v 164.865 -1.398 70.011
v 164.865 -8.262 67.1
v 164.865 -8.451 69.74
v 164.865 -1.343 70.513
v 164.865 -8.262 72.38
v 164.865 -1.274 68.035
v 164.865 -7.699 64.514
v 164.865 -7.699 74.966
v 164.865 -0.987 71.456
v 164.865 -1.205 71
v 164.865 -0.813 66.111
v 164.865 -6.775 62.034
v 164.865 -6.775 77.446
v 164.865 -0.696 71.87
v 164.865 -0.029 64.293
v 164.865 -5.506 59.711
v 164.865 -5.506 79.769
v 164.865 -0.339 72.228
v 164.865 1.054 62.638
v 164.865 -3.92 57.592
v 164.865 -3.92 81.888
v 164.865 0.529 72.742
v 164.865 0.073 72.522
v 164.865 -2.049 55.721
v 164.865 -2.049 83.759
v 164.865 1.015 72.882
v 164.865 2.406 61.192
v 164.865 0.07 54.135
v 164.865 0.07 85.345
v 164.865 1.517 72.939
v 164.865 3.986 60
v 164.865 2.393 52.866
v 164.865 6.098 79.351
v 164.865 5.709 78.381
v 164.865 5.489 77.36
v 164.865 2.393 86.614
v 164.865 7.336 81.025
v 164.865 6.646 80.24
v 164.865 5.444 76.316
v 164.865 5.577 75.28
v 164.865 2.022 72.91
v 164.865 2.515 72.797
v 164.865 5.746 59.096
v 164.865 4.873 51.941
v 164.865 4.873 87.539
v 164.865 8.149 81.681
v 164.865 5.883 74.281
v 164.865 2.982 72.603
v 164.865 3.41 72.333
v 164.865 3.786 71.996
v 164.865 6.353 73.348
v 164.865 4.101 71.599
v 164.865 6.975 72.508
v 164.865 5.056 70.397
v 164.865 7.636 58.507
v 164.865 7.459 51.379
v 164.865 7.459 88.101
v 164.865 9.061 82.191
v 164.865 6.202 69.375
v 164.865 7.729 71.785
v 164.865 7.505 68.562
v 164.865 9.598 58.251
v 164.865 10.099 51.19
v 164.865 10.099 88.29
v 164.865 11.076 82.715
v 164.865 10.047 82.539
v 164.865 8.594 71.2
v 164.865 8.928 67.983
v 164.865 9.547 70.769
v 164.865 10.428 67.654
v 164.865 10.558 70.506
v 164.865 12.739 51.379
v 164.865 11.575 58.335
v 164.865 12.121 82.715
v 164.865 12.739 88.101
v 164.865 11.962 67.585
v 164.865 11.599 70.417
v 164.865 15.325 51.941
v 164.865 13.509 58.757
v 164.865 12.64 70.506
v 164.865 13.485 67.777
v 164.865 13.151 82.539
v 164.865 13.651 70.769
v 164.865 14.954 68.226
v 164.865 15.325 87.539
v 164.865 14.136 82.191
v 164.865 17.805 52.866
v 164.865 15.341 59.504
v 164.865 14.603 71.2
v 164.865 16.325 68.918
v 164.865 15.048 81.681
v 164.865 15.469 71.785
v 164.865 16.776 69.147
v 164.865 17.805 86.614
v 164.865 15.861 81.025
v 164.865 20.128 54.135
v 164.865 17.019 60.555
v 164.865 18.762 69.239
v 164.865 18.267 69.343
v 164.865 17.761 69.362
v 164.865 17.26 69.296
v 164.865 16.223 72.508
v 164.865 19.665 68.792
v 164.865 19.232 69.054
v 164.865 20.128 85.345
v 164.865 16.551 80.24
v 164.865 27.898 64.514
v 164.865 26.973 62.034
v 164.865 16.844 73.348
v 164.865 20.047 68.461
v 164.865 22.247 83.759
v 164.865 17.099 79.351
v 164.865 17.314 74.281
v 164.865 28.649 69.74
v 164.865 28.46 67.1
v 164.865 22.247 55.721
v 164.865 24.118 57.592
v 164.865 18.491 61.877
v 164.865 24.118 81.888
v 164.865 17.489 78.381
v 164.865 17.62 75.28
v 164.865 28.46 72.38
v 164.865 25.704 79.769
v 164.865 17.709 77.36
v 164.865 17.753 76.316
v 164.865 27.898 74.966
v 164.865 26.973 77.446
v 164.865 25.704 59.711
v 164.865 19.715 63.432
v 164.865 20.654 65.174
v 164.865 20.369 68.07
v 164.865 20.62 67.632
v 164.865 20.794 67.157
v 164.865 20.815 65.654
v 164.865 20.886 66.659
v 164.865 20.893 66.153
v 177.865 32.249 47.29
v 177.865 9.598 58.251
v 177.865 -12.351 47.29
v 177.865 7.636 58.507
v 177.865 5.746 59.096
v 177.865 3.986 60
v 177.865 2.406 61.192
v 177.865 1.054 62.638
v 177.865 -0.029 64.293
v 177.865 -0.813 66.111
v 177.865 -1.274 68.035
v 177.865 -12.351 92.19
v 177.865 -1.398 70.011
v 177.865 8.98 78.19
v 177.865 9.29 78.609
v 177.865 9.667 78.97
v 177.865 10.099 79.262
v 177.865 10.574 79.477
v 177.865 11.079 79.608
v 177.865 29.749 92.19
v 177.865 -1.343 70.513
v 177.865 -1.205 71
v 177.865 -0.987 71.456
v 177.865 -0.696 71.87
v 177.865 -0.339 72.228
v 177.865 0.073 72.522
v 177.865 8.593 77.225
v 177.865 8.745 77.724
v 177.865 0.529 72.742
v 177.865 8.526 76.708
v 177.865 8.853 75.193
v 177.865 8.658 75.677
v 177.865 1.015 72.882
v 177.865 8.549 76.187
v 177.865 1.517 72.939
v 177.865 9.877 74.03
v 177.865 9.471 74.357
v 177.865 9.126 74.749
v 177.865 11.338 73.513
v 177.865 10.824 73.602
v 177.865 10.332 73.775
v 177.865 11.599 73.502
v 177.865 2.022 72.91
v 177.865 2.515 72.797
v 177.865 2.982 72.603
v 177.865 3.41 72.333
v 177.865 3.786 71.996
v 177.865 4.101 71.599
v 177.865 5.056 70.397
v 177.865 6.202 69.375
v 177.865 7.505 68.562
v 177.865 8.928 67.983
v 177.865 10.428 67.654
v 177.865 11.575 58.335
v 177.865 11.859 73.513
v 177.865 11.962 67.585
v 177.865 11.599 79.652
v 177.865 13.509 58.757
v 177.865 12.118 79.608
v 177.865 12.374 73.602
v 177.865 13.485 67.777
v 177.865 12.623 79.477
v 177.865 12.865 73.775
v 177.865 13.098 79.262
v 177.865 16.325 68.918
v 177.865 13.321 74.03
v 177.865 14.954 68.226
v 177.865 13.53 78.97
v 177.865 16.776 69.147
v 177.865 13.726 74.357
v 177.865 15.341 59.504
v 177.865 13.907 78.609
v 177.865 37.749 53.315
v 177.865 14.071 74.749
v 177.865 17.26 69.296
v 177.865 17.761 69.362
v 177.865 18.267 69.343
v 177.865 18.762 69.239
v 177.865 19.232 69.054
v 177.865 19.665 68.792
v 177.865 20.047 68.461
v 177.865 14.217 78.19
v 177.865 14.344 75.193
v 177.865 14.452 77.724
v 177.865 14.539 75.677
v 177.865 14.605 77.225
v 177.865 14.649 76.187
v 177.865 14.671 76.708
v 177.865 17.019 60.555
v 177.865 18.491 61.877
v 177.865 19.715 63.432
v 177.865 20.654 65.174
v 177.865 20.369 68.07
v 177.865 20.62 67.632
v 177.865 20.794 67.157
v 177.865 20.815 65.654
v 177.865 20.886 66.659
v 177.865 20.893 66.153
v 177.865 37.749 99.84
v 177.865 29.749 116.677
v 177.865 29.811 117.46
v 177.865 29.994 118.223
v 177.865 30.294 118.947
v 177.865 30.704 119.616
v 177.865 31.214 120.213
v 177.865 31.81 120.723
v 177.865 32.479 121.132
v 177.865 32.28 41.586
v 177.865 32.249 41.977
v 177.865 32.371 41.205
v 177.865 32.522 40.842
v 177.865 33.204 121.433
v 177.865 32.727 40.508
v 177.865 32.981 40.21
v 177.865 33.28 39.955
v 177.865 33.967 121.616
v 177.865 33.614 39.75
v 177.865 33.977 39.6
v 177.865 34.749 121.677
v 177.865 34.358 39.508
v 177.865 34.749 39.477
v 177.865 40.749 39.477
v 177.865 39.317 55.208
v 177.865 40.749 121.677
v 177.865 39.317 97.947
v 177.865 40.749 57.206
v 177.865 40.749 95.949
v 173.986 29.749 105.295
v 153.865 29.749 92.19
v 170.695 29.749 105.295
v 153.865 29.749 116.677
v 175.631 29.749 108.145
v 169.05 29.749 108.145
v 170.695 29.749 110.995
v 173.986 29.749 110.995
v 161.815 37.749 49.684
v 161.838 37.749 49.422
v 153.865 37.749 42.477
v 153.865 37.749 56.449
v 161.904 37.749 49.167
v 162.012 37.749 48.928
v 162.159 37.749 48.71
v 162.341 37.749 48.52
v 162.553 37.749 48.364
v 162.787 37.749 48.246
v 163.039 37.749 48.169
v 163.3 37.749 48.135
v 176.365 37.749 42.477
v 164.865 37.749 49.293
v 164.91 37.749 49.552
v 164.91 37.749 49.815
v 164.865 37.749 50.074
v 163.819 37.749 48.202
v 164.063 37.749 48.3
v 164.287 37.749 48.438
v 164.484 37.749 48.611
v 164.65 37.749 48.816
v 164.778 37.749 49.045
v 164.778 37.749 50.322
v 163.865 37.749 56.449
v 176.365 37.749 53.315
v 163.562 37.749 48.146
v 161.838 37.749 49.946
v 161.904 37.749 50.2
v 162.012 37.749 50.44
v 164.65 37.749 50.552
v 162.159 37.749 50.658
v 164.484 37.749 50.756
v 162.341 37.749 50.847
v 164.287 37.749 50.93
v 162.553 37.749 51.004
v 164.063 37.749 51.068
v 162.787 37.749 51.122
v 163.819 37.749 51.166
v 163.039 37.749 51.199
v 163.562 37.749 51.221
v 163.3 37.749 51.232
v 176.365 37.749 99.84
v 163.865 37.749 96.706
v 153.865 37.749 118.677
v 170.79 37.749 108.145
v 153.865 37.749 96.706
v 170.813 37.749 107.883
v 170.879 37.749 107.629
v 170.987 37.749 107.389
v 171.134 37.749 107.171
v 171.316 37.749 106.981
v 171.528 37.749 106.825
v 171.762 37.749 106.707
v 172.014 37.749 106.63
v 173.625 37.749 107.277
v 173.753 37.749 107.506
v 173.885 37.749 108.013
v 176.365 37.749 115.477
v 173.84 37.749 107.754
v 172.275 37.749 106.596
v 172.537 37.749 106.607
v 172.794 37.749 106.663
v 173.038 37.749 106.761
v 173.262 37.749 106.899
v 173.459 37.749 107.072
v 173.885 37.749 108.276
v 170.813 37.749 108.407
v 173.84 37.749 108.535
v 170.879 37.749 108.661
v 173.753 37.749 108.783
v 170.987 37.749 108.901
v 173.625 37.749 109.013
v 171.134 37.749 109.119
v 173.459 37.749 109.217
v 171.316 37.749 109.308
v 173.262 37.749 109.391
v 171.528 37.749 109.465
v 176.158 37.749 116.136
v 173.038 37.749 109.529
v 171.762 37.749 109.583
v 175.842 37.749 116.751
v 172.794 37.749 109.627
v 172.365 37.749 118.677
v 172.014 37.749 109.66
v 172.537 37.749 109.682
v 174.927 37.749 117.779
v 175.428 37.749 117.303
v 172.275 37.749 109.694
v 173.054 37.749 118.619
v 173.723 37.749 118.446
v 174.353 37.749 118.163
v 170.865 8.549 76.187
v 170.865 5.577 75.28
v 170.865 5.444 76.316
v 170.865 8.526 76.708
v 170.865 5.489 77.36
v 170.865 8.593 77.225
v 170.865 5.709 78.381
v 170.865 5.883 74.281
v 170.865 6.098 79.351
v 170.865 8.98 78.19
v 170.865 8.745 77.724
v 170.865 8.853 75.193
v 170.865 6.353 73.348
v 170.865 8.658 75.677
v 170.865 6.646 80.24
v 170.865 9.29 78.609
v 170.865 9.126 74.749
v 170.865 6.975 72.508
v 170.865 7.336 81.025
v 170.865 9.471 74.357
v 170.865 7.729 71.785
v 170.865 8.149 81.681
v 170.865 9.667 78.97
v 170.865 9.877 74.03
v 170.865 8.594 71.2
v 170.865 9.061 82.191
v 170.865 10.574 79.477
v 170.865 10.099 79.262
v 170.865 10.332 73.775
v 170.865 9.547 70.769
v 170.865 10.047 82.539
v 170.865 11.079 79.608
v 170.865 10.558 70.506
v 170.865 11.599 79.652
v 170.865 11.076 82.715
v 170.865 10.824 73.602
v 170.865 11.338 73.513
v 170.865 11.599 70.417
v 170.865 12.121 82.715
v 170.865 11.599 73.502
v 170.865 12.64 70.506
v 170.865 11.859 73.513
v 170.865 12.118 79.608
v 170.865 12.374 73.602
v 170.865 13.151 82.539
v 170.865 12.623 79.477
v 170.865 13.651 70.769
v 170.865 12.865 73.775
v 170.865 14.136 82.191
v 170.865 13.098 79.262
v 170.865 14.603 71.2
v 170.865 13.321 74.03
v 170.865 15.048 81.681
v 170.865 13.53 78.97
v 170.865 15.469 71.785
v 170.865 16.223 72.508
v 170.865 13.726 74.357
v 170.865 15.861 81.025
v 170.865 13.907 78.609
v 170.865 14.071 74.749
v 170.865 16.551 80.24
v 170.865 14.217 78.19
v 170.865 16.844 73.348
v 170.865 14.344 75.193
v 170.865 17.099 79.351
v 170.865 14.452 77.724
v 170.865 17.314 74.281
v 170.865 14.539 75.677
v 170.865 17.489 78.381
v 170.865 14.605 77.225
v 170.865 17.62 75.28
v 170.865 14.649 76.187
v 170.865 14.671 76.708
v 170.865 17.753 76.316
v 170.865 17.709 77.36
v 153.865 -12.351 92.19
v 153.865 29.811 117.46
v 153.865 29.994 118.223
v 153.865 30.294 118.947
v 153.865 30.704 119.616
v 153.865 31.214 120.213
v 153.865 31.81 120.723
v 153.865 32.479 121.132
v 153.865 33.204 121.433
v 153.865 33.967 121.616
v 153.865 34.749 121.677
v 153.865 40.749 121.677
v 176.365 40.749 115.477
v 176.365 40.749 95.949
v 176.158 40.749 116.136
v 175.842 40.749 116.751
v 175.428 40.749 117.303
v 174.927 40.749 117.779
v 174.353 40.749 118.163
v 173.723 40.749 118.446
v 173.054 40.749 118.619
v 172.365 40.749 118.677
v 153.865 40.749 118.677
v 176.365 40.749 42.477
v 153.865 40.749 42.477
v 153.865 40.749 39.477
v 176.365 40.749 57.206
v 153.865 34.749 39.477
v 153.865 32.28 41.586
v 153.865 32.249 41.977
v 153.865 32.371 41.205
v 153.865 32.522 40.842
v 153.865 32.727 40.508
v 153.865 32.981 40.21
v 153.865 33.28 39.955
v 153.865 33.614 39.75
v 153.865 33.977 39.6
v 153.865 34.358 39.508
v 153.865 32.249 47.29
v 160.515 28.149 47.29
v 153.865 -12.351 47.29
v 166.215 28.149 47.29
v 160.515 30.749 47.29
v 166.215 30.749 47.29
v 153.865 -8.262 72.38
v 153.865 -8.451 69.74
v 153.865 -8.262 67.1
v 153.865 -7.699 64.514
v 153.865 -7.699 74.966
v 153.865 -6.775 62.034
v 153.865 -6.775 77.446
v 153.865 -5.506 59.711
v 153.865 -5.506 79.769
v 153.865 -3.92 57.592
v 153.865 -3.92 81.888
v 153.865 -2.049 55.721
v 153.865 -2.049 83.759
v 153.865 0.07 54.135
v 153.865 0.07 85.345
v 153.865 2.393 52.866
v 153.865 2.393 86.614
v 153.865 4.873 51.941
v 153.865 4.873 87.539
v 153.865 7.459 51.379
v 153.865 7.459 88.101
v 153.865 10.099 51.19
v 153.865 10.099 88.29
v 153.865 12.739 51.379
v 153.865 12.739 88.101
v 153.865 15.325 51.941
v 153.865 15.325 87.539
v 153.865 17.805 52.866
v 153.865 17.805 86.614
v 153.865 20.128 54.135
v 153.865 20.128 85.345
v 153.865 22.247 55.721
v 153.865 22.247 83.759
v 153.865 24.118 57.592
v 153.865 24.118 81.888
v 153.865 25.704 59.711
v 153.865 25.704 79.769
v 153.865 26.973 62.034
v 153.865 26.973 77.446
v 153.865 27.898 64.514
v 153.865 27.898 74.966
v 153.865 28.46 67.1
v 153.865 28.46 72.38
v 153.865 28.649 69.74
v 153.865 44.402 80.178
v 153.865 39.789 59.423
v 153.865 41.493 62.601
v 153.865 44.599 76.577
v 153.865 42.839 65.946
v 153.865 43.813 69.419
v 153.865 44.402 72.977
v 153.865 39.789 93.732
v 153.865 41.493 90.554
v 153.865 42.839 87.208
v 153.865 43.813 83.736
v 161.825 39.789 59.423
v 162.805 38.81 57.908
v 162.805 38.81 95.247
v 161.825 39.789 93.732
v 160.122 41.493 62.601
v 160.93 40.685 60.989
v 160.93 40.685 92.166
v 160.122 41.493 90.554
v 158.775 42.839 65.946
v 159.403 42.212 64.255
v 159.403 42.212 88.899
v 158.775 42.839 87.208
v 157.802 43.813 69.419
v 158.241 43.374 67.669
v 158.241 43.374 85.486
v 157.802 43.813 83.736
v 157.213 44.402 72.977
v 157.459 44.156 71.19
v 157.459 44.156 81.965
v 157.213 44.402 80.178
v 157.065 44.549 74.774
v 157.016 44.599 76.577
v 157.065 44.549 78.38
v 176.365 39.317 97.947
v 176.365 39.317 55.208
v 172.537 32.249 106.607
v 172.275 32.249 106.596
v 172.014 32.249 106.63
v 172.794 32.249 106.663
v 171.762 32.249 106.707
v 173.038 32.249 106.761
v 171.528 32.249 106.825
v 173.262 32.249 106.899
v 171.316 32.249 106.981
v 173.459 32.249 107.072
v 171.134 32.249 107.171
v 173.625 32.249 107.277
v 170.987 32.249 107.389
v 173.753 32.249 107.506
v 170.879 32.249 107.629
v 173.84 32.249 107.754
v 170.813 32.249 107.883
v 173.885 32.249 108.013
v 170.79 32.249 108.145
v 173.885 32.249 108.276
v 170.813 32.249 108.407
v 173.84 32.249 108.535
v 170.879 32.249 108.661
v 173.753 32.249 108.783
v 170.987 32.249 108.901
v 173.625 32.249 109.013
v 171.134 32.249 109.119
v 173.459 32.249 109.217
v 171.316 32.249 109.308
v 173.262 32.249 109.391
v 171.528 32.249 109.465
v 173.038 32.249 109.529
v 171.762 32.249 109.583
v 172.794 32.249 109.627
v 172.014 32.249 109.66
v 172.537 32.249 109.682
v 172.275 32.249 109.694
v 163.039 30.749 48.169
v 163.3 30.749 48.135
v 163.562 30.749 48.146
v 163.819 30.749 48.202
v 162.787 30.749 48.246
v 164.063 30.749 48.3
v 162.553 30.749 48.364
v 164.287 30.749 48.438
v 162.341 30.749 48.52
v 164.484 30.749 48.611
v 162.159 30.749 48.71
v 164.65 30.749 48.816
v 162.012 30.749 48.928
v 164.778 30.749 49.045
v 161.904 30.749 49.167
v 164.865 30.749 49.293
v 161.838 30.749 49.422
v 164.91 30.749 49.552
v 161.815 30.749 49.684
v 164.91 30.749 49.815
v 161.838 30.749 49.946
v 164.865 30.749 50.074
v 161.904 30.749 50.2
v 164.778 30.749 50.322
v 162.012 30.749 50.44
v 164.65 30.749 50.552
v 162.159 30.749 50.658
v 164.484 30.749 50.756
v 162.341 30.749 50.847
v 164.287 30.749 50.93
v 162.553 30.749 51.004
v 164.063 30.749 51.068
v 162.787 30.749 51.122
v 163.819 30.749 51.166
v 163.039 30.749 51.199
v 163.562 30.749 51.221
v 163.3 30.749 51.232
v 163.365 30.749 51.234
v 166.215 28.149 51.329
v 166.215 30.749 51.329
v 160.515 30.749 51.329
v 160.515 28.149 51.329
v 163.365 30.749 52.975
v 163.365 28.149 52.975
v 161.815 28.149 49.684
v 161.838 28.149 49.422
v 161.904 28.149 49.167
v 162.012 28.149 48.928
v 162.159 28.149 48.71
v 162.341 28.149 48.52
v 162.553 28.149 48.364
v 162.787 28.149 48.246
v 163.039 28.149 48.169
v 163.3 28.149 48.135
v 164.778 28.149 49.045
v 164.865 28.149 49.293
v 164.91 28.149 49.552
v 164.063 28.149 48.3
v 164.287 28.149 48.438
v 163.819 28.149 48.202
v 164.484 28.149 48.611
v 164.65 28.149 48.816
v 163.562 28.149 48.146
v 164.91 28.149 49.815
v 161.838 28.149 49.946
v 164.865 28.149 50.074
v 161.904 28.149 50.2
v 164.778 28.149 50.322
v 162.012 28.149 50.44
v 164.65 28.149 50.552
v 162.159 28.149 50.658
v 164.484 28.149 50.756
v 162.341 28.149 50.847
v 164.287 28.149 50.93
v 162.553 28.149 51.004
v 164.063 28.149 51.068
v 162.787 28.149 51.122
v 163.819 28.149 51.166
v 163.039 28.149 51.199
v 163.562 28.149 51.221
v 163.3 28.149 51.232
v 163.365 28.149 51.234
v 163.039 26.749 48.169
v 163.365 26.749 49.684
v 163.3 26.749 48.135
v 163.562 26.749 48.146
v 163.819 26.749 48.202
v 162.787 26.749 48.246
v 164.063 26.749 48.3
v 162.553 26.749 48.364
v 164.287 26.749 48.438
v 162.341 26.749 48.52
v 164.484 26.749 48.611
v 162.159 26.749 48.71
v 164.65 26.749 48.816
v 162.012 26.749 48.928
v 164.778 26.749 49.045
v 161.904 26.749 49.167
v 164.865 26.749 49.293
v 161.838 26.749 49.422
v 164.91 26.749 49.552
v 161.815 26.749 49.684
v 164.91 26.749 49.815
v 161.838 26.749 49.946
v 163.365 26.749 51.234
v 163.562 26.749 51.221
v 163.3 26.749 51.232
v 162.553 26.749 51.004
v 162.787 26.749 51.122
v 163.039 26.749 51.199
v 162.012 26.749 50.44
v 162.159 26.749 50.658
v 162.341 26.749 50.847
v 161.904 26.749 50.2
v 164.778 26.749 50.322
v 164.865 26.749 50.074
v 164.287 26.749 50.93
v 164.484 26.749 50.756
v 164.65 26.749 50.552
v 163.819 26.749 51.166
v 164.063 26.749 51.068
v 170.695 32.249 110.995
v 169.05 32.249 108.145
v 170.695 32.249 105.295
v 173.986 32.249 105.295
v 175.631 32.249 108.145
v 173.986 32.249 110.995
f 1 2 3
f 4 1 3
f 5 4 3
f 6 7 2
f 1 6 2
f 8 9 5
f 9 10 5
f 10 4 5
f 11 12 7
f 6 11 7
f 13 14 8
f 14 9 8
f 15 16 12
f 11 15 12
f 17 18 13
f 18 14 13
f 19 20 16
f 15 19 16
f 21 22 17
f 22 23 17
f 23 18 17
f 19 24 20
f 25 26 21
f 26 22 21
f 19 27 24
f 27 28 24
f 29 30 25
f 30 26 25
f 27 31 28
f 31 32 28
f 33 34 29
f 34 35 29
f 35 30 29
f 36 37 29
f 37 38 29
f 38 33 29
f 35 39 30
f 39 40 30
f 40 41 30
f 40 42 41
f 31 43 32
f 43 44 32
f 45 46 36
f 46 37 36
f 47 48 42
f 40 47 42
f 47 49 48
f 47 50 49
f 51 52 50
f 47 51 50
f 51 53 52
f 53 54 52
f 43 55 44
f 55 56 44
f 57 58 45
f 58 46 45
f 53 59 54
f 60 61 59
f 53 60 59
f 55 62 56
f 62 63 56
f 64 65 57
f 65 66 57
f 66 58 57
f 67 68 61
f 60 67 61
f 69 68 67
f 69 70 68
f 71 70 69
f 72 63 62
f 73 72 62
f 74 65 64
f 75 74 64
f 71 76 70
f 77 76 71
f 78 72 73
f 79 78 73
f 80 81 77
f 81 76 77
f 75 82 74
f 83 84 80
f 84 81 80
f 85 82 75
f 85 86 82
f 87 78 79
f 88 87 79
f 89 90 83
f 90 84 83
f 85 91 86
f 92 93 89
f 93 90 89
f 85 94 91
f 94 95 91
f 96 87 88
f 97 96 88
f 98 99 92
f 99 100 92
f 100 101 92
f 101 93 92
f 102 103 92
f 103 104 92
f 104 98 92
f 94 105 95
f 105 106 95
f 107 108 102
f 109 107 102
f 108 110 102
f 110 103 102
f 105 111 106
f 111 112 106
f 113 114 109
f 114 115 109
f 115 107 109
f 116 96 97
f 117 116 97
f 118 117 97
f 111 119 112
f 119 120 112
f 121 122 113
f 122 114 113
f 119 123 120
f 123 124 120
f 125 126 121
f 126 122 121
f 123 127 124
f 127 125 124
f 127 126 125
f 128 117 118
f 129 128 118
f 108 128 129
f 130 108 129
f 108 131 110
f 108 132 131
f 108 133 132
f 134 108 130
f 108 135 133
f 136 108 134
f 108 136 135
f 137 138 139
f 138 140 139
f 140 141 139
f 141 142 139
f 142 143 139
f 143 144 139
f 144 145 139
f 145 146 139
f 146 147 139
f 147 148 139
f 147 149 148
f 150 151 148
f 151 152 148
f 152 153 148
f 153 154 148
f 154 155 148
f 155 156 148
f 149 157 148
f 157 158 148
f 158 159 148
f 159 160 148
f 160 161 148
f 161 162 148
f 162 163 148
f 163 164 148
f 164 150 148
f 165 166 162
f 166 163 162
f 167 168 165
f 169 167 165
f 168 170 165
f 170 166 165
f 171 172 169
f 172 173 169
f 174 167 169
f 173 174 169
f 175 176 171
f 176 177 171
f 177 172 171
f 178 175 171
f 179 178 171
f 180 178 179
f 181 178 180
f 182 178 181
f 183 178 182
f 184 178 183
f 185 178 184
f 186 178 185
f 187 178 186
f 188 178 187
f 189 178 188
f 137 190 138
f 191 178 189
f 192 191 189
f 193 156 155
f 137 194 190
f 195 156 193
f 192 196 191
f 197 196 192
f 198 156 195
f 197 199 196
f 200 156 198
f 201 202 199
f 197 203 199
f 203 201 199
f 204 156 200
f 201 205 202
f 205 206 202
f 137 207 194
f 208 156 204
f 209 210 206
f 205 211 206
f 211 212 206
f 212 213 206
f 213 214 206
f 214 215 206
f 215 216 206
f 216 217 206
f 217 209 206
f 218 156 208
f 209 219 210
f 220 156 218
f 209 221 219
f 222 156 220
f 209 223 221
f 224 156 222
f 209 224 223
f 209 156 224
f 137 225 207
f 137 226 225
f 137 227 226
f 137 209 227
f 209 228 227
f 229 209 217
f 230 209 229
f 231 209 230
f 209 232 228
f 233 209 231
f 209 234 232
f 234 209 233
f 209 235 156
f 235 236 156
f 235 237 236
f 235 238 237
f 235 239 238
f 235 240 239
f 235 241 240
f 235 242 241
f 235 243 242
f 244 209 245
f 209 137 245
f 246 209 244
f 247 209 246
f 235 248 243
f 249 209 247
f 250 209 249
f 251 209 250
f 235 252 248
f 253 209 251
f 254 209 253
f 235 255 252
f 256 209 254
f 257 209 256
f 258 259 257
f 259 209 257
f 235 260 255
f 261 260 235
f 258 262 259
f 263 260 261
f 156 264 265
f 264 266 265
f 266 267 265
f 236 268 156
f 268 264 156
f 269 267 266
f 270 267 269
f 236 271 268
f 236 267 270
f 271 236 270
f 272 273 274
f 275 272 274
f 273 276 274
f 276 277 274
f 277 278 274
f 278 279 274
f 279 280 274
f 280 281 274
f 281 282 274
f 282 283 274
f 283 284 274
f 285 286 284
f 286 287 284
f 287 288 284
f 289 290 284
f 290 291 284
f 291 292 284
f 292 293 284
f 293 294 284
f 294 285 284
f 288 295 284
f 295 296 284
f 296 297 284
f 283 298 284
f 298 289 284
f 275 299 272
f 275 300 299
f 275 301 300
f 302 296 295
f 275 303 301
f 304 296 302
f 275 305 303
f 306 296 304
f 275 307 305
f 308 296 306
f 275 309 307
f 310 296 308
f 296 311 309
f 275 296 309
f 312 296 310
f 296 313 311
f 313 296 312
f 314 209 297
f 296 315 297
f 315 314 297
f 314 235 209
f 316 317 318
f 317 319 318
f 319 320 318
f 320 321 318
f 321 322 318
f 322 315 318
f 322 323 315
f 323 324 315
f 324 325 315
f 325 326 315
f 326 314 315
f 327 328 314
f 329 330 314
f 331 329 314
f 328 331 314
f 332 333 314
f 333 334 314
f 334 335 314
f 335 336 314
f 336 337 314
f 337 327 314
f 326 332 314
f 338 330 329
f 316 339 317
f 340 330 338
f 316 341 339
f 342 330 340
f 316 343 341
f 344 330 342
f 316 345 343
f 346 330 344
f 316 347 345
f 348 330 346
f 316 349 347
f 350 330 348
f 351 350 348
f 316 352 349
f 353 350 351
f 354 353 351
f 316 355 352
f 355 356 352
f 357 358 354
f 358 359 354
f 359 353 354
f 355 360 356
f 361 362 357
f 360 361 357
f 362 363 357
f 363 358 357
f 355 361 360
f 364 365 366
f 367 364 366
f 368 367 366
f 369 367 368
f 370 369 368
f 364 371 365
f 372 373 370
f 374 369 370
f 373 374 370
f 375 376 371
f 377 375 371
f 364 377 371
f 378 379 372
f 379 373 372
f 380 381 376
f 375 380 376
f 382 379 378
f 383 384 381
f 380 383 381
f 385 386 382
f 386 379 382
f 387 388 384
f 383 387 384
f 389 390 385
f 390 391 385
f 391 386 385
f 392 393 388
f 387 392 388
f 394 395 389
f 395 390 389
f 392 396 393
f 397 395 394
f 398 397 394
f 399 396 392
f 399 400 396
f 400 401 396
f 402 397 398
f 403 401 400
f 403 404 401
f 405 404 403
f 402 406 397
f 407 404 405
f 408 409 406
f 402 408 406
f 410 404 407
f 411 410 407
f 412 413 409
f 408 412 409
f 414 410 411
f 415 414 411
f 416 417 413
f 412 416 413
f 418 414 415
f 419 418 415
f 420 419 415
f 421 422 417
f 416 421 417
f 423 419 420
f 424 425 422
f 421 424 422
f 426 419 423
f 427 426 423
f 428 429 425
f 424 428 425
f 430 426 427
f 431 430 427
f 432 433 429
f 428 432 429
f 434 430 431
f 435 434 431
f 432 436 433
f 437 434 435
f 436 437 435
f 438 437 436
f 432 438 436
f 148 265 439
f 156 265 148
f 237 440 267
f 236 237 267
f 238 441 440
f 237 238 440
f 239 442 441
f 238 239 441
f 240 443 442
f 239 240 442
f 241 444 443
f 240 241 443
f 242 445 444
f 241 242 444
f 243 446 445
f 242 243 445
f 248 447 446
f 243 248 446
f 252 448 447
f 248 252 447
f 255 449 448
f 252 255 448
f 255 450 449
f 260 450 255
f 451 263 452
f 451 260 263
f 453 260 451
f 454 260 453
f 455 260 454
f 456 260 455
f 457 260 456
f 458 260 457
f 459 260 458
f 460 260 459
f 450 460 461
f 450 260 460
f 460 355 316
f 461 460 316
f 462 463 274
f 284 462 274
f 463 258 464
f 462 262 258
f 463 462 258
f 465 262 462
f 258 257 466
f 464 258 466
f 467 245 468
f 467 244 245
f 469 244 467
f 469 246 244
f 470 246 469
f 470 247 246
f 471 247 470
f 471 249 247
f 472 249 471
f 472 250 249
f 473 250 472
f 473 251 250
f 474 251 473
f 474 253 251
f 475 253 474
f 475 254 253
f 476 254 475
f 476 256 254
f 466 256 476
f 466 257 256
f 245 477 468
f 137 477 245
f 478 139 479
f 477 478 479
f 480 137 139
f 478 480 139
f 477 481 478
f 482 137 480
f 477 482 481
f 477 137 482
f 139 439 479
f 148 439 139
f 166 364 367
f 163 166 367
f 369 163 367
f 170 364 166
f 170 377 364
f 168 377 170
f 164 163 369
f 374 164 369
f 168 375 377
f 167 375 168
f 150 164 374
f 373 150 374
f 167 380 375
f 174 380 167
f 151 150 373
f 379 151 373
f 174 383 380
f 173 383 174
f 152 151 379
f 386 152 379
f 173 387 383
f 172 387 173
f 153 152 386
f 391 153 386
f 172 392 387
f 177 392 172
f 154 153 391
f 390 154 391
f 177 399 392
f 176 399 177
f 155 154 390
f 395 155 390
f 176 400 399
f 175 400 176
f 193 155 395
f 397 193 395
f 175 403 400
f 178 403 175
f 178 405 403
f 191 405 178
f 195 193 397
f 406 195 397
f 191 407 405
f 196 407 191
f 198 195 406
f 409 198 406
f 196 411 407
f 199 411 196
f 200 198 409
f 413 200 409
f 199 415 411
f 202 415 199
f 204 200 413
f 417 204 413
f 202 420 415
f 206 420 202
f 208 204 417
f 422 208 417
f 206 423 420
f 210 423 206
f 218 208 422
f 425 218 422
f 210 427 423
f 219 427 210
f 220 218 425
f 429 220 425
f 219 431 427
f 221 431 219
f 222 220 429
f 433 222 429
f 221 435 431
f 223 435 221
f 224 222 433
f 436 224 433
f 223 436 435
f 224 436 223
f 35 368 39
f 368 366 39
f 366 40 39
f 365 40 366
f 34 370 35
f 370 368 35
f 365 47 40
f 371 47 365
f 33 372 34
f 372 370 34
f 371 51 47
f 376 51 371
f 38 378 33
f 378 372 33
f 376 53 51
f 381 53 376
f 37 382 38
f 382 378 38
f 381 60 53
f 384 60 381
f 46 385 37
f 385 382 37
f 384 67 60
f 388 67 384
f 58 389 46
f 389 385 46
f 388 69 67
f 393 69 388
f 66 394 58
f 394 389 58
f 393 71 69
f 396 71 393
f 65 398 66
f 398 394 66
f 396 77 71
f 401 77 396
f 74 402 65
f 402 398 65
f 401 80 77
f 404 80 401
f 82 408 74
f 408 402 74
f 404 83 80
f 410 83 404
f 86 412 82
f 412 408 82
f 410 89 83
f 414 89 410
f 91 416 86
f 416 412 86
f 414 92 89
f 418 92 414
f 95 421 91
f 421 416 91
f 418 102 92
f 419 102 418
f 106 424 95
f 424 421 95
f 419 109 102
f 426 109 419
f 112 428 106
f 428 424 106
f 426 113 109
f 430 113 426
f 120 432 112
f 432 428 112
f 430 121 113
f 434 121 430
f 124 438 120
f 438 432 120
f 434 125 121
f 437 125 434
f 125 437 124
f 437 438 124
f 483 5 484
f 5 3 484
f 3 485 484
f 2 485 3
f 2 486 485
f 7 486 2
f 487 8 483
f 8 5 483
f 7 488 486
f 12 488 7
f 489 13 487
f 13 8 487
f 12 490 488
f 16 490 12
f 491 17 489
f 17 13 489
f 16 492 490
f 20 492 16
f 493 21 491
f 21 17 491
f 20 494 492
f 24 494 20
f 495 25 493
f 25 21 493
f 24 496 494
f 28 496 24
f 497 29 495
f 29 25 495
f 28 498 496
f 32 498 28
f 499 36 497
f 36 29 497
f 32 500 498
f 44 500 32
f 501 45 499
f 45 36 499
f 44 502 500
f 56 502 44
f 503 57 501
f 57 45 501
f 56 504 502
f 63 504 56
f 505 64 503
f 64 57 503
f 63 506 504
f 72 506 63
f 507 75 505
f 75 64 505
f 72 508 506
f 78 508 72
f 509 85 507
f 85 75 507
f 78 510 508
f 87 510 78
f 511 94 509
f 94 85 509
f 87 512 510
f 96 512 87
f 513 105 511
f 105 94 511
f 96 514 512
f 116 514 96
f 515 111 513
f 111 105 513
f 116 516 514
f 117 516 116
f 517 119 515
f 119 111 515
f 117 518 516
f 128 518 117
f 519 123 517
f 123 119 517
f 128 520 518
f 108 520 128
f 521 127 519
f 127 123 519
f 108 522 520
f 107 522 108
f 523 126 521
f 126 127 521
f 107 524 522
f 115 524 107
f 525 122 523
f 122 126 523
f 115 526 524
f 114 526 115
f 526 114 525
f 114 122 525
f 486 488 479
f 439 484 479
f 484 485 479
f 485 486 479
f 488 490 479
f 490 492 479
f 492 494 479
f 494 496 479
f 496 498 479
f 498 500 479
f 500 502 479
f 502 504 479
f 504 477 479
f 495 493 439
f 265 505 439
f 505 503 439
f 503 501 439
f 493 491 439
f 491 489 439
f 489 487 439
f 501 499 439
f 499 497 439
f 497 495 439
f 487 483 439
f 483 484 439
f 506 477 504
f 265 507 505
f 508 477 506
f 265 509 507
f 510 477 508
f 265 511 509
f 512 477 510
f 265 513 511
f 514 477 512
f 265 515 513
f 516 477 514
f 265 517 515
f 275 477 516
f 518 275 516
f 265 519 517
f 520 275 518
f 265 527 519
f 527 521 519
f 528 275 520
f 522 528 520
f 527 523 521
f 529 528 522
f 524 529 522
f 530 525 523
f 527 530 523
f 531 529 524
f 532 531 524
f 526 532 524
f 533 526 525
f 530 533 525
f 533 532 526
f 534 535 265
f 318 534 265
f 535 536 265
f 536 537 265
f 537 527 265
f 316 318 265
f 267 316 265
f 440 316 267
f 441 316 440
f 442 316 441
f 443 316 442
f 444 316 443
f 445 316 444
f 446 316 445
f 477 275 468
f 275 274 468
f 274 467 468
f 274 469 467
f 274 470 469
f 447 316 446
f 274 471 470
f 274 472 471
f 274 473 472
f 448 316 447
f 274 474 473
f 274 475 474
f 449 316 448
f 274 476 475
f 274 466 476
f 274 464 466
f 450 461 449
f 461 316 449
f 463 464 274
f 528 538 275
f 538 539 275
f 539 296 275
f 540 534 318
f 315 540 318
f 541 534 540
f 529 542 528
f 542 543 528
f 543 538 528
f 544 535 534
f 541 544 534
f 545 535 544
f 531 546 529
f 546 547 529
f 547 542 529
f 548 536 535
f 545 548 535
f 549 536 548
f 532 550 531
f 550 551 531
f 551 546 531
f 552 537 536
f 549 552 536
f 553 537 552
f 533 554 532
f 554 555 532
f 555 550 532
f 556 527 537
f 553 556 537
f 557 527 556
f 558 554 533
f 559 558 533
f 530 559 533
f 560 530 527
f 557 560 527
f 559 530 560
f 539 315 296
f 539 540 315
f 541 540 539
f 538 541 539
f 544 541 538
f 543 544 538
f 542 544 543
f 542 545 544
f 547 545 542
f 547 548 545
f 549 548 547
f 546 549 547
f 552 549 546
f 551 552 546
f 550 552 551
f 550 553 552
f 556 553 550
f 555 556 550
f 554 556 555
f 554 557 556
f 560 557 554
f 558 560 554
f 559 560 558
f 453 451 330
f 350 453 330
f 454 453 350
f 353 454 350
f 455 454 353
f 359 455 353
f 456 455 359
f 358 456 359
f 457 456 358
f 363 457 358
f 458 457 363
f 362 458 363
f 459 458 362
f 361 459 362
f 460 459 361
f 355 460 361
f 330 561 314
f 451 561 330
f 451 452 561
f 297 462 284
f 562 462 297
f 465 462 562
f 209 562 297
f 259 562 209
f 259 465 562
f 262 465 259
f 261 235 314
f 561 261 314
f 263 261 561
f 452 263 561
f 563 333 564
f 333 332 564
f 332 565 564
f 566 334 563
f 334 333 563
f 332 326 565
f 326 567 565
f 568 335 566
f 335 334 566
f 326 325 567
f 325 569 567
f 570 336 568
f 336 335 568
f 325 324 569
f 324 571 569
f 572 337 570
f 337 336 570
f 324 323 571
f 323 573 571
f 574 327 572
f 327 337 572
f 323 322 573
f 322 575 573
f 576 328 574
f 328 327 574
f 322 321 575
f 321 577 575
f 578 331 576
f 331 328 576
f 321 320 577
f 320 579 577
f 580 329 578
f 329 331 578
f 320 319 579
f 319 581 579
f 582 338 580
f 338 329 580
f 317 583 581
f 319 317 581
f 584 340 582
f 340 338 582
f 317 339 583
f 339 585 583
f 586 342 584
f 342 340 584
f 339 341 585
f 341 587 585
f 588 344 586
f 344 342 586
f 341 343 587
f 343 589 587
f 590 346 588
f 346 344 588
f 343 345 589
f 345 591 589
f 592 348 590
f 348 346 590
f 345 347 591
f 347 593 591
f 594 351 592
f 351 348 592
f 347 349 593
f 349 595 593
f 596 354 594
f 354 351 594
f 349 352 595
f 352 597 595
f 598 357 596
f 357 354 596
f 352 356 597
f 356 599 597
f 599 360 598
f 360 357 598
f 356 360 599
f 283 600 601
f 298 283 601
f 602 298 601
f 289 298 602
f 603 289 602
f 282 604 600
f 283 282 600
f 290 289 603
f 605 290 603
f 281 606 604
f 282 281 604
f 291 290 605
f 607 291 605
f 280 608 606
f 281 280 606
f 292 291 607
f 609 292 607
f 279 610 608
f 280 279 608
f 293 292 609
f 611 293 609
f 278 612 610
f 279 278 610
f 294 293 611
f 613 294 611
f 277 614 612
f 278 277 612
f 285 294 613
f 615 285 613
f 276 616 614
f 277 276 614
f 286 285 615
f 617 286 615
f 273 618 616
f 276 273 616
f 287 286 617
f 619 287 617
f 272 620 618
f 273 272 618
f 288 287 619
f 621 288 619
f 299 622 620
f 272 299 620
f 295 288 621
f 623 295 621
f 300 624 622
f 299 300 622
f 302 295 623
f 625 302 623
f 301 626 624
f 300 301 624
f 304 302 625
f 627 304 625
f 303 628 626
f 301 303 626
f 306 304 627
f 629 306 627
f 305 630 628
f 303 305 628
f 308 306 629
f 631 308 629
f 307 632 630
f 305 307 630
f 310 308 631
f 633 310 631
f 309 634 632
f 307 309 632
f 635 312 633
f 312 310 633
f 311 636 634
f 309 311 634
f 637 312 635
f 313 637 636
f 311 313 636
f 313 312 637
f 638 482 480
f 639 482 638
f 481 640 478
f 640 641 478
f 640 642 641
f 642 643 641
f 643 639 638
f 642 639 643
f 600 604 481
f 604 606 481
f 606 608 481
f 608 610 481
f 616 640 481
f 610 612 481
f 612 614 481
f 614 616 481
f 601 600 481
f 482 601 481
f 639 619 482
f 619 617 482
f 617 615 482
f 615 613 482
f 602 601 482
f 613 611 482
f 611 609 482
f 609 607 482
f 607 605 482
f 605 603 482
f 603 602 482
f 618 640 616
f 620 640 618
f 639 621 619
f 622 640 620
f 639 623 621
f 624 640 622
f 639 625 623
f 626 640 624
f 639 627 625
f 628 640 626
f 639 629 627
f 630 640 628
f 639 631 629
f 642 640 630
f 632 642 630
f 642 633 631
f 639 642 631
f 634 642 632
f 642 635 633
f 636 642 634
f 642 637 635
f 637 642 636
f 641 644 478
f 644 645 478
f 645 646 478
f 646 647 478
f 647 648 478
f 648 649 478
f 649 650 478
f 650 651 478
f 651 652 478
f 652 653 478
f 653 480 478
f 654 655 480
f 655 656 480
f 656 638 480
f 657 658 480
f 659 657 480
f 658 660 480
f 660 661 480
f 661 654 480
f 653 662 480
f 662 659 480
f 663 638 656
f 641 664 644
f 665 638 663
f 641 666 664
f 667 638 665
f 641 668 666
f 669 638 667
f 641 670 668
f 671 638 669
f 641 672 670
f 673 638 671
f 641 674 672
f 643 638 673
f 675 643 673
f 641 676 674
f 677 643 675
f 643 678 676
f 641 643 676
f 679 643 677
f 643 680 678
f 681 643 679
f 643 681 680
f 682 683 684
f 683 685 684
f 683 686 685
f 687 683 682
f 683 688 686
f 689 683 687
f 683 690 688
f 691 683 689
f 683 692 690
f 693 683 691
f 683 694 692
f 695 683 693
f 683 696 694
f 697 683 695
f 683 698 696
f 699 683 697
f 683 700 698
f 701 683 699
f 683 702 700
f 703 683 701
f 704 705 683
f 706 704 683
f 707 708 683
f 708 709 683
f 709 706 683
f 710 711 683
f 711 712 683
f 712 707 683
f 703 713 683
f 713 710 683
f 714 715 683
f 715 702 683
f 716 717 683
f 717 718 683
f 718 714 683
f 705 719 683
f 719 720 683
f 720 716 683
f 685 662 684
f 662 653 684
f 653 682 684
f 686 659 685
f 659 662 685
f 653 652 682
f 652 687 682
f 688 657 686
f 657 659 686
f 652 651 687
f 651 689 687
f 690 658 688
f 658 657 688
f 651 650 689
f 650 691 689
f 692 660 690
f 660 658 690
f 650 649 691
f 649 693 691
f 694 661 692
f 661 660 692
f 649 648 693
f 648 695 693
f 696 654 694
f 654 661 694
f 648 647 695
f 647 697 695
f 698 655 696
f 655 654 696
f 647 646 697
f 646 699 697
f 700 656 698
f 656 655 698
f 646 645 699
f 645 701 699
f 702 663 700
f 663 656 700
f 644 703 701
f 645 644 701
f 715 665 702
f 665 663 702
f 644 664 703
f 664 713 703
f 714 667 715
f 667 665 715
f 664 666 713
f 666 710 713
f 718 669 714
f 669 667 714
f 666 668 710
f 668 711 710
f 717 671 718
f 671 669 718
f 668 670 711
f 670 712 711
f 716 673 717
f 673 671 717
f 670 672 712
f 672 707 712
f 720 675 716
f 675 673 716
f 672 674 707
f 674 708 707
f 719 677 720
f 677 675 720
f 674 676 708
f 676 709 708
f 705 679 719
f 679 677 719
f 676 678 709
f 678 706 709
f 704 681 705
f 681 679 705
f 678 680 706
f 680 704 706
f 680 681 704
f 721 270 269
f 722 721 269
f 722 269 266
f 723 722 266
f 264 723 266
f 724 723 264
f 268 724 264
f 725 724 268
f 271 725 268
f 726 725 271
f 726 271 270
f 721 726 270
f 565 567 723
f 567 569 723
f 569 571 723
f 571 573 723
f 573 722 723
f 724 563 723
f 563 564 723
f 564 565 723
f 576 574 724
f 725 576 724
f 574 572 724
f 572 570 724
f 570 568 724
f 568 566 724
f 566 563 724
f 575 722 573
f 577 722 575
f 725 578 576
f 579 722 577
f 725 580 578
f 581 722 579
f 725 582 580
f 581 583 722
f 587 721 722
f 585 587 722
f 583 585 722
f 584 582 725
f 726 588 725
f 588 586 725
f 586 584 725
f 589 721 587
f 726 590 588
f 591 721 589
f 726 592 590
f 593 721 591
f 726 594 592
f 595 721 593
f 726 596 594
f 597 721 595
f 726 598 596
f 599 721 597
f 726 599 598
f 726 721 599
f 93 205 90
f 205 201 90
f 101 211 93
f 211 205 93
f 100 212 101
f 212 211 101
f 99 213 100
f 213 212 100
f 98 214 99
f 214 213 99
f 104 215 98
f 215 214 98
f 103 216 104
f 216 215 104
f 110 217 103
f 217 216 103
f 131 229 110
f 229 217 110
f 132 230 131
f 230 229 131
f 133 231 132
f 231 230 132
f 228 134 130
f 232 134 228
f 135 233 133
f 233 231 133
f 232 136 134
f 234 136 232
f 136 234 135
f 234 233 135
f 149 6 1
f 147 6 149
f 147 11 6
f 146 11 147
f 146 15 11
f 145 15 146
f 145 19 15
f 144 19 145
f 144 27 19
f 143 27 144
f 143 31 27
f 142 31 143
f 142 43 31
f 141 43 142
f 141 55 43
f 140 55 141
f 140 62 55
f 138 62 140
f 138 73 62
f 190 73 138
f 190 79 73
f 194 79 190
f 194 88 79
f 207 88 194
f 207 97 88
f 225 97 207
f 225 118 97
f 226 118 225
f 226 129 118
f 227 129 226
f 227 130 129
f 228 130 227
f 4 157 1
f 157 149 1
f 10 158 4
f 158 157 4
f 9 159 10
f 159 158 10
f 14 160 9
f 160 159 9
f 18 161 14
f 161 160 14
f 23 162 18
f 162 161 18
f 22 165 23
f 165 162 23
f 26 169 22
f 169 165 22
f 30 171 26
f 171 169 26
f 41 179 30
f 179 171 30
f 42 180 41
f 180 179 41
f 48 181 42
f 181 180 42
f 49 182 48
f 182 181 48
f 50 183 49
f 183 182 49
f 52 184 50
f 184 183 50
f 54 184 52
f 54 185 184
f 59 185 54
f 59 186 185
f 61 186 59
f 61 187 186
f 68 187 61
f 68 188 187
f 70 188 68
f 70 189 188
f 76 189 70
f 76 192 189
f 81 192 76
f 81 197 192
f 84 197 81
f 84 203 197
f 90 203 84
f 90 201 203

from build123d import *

# Parameters (mm, degrees)
SKETCH1_R           = 22.45
SKETCH1_R_2         = 6.11
SKETCH1_R_3         = 18.55
SKETCH1_R_4         = 5.25
SKETCH1_R_5         = 3.075
BOSS_EXTRUDE1_DEPTH = 5.5
SKETCH1_3_R         = 22.45
SKETCH1_3_R_2       = 6.11
SKETCH1_3_R_3       = 18.55
BOSS_EXTRUDE2_DEPTH = 6
BOSS_EXTRUDE3_START = -17
SKETCH1_4_R         = 18.55
BOSS_EXTRUDE3_DEPTH = 11
BOSS_EXTRUDE4_DEPTH = 10
DRAFT1_ANGLE        = 45
BOSS_EXTRUDE5_DEPTH = 3
SKETCH4_R           = 3.075
BOSS_EXTRUDE6_DEPTH = 1.5
CUT_EXTRUDE1_START  = -11
SKETCH3_4_R         = 1.55
CUT_EXTRUDE1_DEPTH  = 11
CUT_EXTRUDE2_START  = -9.6
SKETCH3_5_R         = 1.55
CUT_EXTRUDE2_DEPTH  = 2.6
CUT_EXTRUDE3_START  = -8
SKETCH3_6_R         = 1.55
CUT_EXTRUDE3_DEPTH  = 2.5
CUT_EXTRUDE4_DEPTH  = 13


with BuildPart() as part:
    # Sketch1 → Boss-Extrude1 (new body)
    with BuildSketch(Plane(origin=(170.865454796, 0, 0), x_dir=(0, 0, -1), z_dir=(1, 0, 0))):
        with BuildLine():
            ThreePointArc((-69.739907234, -12.350878767), (-85.614454471, -5.775426005), (-92.189907234, 10.099121233))
            Line((-92.189907234, 10.099121233), (-92.189907234, -12.350878767))
            Line((-92.189907234, -12.350878767), (-69.739907234, -12.350878767))
        make_face()
        with BuildLine():
            Line((-116.677399291, 29.749121233), (-92.189907234, 29.749121233))
            Line((-92.189907234, 29.749121233), (-92.189907234, 10.099121233))
            ThreePointArc((-92.189907234, 10.099121233), (-69.739907234, 32.549121233), (-47.289907234, 10.099121233))
            Line((-47.289907234, 10.099121233), (-47.289907234, 32.249121233))
            Line((-47.289907234, 32.249121233), (-41.977399291, 32.249121233))
            ThreePointArc((-41.977399291, 32.249121233), (-40.209632338, 32.98135428), (-39.477399291, 34.749121233))
            Line((-39.477399291, 34.749121233), (-39.477399291, 40.749121233))
            Line((-39.477399291, 40.749121233), (-42.477399291, 40.749121233))
            Line((-42.477399291, 40.749121233), (-42.477399291, 37.749121233))
            Line((-42.477399291, 37.749121233), (-118.677399291, 37.749121233))
            Line((-118.677399291, 37.749121233), (-118.677399291, 40.749121233))
            Line((-118.677399291, 40.749121233), (-121.677399291, 40.749121233))
            Line((-121.677399291, 40.749121233), (-121.677399291, 34.749121233))
            ThreePointArc((-121.677399291, 34.749121233), (-120.212933197, 31.213587327), (-116.677399291, 29.749121233))
        make_face()
        with BuildLine():
            Line((-47.289907234, -12.350878767), (-47.289907234, 10.099121233))
            ThreePointArc((-47.289907234, 10.099121233), (-53.865359996, -5.775426005), (-69.739907234, -12.350878767))
            Line((-69.739907234, -12.350878767), (-47.289907234, -12.350878767))
        make_face()
        with Locations((-69.739907234, 10.099121233)):
            Circle(SKETCH1_R)
        with Locations((-76.577399291, 11.598688626)):
            Circle(SKETCH1_R_2, mode=Mode.SUBTRACT)
        with Locations((-69.739907234, 10.099121233)):
            Circle(SKETCH1_R_3)
        with Locations((-76.577399291, 11.598688626)):
            Circle(SKETCH1_R_2, mode=Mode.SUBTRACT)
        with Locations((-76.577399291, 11.598688626)):
            Circle(SKETCH1_R_2)
        with Locations((-76.577399291, 11.598688626)):
            Circle(SKETCH1_R_4, mode=Mode.SUBTRACT)
        with Locations((-76.577399291, 11.598688626)):
            Circle(SKETCH1_R_4)
        with Locations((-76.577399291, 11.598688626)):
            Circle(SKETCH1_R_5, mode=Mode.SUBTRACT)
    extrude(amount=BOSS_EXTRUDE1_DEPTH)

    # Sketch1<3> → Boss-Extrude2 (add)
    with BuildSketch(Plane(origin=(170.865454796, 0, 0), x_dir=(0, 0, -1), z_dir=(1, 0, 0))):
        with BuildLine():
            ThreePointArc((-69.739907234, -12.350878767), (-85.614454471, -5.775426005), (-92.189907234, 10.099121233))
            Line((-92.189907234, 10.099121233), (-92.189907234, -12.350878767))
            Line((-92.189907234, -12.350878767), (-69.739907234, -12.350878767))
        make_face()
        with BuildLine():
            Line((-47.289907234, -12.350878767), (-47.289907234, 10.099121233))
            ThreePointArc((-47.289907234, 10.099121233), (-53.865359996, -5.775426005), (-69.739907234, -12.350878767))
            Line((-69.739907234, -12.350878767), (-47.289907234, -12.350878767))
        make_face()
        with BuildLine():
            Line((-116.677399291, 29.749121233), (-92.189907234, 29.749121233))
            Line((-92.189907234, 29.749121233), (-92.189907234, 10.099121233))
            ThreePointArc((-92.189907234, 10.099121233), (-69.739907234, 32.549121233), (-47.289907234, 10.099121233))
            Line((-47.289907234, 10.099121233), (-47.289907234, 32.249121233))
            Line((-47.289907234, 32.249121233), (-41.977399291, 32.249121233))
            ThreePointArc((-41.977399291, 32.249121233), (-40.209632338, 32.98135428), (-39.477399291, 34.749121233))
            Line((-39.477399291, 34.749121233), (-39.477399291, 40.749121233))
            Line((-39.477399291, 40.749121233), (-42.477399291, 40.749121233))
            Line((-42.477399291, 40.749121233), (-42.477399291, 37.749121233))
            Line((-42.477399291, 37.749121233), (-118.677399291, 37.749121233))
            Line((-118.677399291, 37.749121233), (-118.677399291, 40.749121233))
            Line((-118.677399291, 40.749121233), (-121.677399291, 40.749121233))
            Line((-121.677399291, 40.749121233), (-121.677399291, 34.749121233))
            ThreePointArc((-121.677399291, 34.749121233), (-120.212933197, 31.213587327), (-116.677399291, 29.749121233))
        make_face()
        with Locations((-69.739907234, 10.099121233)):
            Circle(SKETCH1_3_R)
        with Locations((-76.577399291, 11.598688626)):
            Circle(SKETCH1_3_R_2, mode=Mode.SUBTRACT)
        with Locations((-69.739907234, 10.099121233)):
            Circle(SKETCH1_3_R_3)
        with Locations((-76.577399291, 11.598688626)):
            Circle(SKETCH1_3_R_2, mode=Mode.SUBTRACT)
    extrude(amount=-BOSS_EXTRUDE2_DEPTH)

    # Sketch1<4> → Boss-Extrude3 (add)
    with BuildSketch(Plane(origin=(170.865454796, 0, 0), x_dir=(0, 0, -1), z_dir=(1, 0, 0)).offset(BOSS_EXTRUDE3_START)):
        with BuildLine():
            Line((-116.677399291, 29.749121233), (-92.189907234, 29.749121233))
            Line((-92.189907234, 29.749121233), (-92.189907234, -12.350878767))
            Line((-92.189907234, -12.350878767), (-47.289907234, -12.350878767))
            Line((-47.289907234, -12.350878767), (-47.289907234, 32.249121233))
            Line((-47.289907234, 32.249121233), (-41.977399291, 32.249121233))
            ThreePointArc((-41.977399291, 32.249121233), (-40.209632338, 32.98135428), (-39.477399291, 34.749121233))
            Line((-39.477399291, 34.749121233), (-39.477399291, 40.749121233))
            Line((-39.477399291, 40.749121233), (-42.477399291, 40.749121233))
            Line((-42.477399291, 40.749121233), (-42.477399291, 37.749121233))
            Line((-42.477399291, 37.749121233), (-118.677399291, 37.749121233))
            Line((-118.677399291, 37.749121233), (-118.677399291, 40.749121233))
            Line((-118.677399291, 40.749121233), (-121.677399291, 40.749121233))
            Line((-121.677399291, 40.749121233), (-121.677399291, 34.749121233))
            ThreePointArc((-121.677399291, 34.749121233), (-120.212933197, 31.213587327), (-116.677399291, 29.749121233))
        make_face()
        with Locations((-69.739907234, 10.099121233)):
            Circle(SKETCH1_4_R, mode=Mode.SUBTRACT)
    extrude(amount=BOSS_EXTRUDE3_DEPTH)

    # Sketch2 → Boss-Extrude4 (add)
    with BuildSketch(Plane.ZY.offset(-153.865454796)):
        with BuildLine():
            Line((56.448939974, 37.749121233), (96.705858608, 37.749121233))
            ThreePointArc((96.705858608, 37.749121233), (76.577399291, 44.598688626), (56.448939974, 37.749121233))
        make_face()
    extrude(amount=-BOSS_EXTRUDE4_DEPTH)

    # Draft1
    draft1_faces = [part.faces().sort_by_distance(p)[0] for p in [
        (163.865454796, 40.514883149, 76.577399291),
    ]]
    draft(draft1_faces, Plane(origin=(274.224792623, 37.749121233, 0), x_dir=(1, 0, 0), z_dir=(0, 1, 0)), DRAFT1_ANGLE)

    # Sketch3 → Boss-Extrude5 (add)
    with BuildSketch(Plane(origin=(0, 37.749121233, 0), x_dir=(1, 0, 0), z_dir=(0, 1, 0))):
        with BuildLine():
            Line((176.365454796, -118.677399291), (176.365454796, -115.477399292))
            ThreePointArc((176.365454796, -115.477399292), (174.926704491, -117.77896141), (172.365454796, -118.677399291))
            Line((172.365454796, -118.677399291), (176.365454796, -118.677399291))
        make_face()
    extrude(amount=BOSS_EXTRUDE5_DEPTH)

    # Sketch4 → Boss-Extrude6 (add)
    with BuildSketch(Plane(origin=(176.365454796, 0, 0), x_dir=(0, 0, -1), z_dir=(1, 0, 0))):
        with BuildLine():
            Line((-115.477399292, 37.749121233), (-115.477399292, 40.749121233))
            Line((-115.477399292, 40.749121233), (-121.677399291, 40.749121233))
            Line((-121.677399291, 40.749121233), (-121.677399291, 34.749121233))
            ThreePointArc((-121.677399291, 34.749121233), (-120.212933197, 31.213587327), (-116.677399291, 29.749121233))
            Line((-116.677399291, 29.749121233), (-92.189907234, 29.749121233))
            Line((-92.189907234, 29.749121233), (-92.189907234, -12.350878767))
            Line((-92.189907234, -12.350878767), (-47.289907234, -12.350878767))
            Line((-47.289907234, -12.350878767), (-47.289907234, 32.249121233))
            Line((-47.289907234, 32.249121233), (-41.977399291, 32.249121233))
            ThreePointArc((-41.977399291, 32.249121233), (-40.209632338, 32.98135428), (-39.477399291, 34.749121233))
            Line((-39.477399291, 34.749121233), (-39.477399291, 40.749121233))
            Line((-39.477399291, 40.749121233), (-42.477399291, 40.749121233))
            Line((-42.477399291, 40.749121233), (-42.477399291, 37.749121233))
            Line((-42.477399291, 37.749121233), (-53.314663543, 37.749121233))
            Line((-53.314663543, 37.749121233), (-99.840135039, 37.749121233))
            Line((-99.840135039, 37.749121233), (-115.477399292, 37.749121233))
        make_face()
        with Locations((-76.577399291, 11.598688626)):
            Circle(SKETCH4_R, mode=Mode.SUBTRACT)
        with BuildLine():
            Line((-95.948828739, 40.749121233), (-115.477399292, 40.749121233))
            Line((-115.477399292, 40.749121233), (-115.477399292, 37.749121233))
            Line((-115.477399292, 37.749121233), (-99.840135039, 37.749121233))
            ThreePointArc((-99.840135039, 37.749121233), (-97.9471913, 39.31749072), (-95.948828739, 40.749121233))
        make_face()
        with BuildLine():
            ThreePointArc((-57.205969843, 40.749121233), (-55.207607282, 39.31749072), (-53.314663543, 37.749121233))
            Line((-53.314663543, 37.749121233), (-42.477399291, 37.749121233))
            Line((-42.477399291, 37.749121233), (-42.477399291, 40.749121233))
            Line((-42.477399291, 40.749121233), (-57.205969843, 40.749121233))
        make_face()
    extrude(amount=BOSS_EXTRUDE6_DEPTH)

    # Sketch3<4> → Cut-Extrude1 (cut)
    with BuildSketch(Plane(origin=(0, 37.749121233, 0), x_dir=(1, 0, 0), z_dir=(0, 1, 0)).offset(CUT_EXTRUDE1_START)):
        with Locations(Location((172.340454796, -108.144978953, 0), (0, 0, 180))):
            Circle(SKETCH3_4_R)
        with Locations(Location((163.365454796, -49.683845424, 0), (0, 0, 180))):
            Circle(SKETCH3_4_R)
    extrude(amount=CUT_EXTRUDE1_DEPTH, mode=Mode.SUBTRACT)

    # Sketch3<5> → Cut-Extrude2 (cut)
    with BuildSketch(Plane(origin=(0, 37.749121233, 0), x_dir=(1, 0, 0), z_dir=(0, 1, 0)).offset(CUT_EXTRUDE2_START)):
        Polygon((164.91903222, -47.289907234), (161.811877372, -47.289907234), (160.515454796, -48.038397157), (160.515454796, -51.329293692), (163.365454796, -52.974741959), (166.215454796, -51.329293692), (166.215454796, -48.038397157), align=None)
        with Locations(Location((163.365454796, -49.683845424, 0), (0, 0, 180))):
            Circle(SKETCH3_5_R, mode=Mode.SUBTRACT)
        Polygon((166.215454796, -47.289907234), (164.91903222, -47.289907234), (166.215454796, -48.038397157), align=None)
        Polygon((160.515454796, -48.038397157), (161.811877372, -47.289907234), (160.515454796, -47.289907234), align=None)
    extrude(amount=CUT_EXTRUDE2_DEPTH, mode=Mode.SUBTRACT)

    # Sketch3<6> → Cut-Extrude3 (cut)
    with BuildSketch(Plane(origin=(0, 37.749121233, 0), x_dir=(1, 0, 0), z_dir=(0, 1, 0)).offset(CUT_EXTRUDE3_START)):
        Polygon((170.695006529, -110.994978953), (173.985903063, -110.994978953), (175.63135133, -108.144978953), (173.985903063, -105.294978953), (170.695006529, -105.294978953), (169.049558261, -108.144978953), align=None)
        with Locations(Location((172.340454796, -108.144978953, 0), (0, 0, 180))):
            Circle(SKETCH3_6_R, mode=Mode.SUBTRACT)
    extrude(amount=CUT_EXTRUDE3_DEPTH, mode=Mode.SUBTRACT)

    # Sketch5 → Cut-Extrude4 (cut)
    with BuildSketch(Plane(origin=(177.865454796, 0, 0), x_dir=(0, 0, -1), z_dir=(1, 0, 0))):
        with BuildLine():
            ThreePointArc((-65.174281564, 20.653980883), (-58.506884568, 7.635546229), (-70.01055365, -1.397693566))
            ThreePointArc((-70.01055365, -1.397693566), (-72.822049276, 0.768705961), (-71.5993125, 4.100778791))
            ThreePointArc((-71.5993125, 4.100778791), (-67.786338075, 9.670673406), (-68.918335583, 16.325076583))
            ThreePointArc((-68.918335583, 16.325076583), (-68.634368389, 19.863036052), (-65.174281564, 20.653980883))
        make_face()
    extrude(amount=-CUT_EXTRUDE4_DEPTH, mode=Mode.SUBTRACT)


solid = part.part
